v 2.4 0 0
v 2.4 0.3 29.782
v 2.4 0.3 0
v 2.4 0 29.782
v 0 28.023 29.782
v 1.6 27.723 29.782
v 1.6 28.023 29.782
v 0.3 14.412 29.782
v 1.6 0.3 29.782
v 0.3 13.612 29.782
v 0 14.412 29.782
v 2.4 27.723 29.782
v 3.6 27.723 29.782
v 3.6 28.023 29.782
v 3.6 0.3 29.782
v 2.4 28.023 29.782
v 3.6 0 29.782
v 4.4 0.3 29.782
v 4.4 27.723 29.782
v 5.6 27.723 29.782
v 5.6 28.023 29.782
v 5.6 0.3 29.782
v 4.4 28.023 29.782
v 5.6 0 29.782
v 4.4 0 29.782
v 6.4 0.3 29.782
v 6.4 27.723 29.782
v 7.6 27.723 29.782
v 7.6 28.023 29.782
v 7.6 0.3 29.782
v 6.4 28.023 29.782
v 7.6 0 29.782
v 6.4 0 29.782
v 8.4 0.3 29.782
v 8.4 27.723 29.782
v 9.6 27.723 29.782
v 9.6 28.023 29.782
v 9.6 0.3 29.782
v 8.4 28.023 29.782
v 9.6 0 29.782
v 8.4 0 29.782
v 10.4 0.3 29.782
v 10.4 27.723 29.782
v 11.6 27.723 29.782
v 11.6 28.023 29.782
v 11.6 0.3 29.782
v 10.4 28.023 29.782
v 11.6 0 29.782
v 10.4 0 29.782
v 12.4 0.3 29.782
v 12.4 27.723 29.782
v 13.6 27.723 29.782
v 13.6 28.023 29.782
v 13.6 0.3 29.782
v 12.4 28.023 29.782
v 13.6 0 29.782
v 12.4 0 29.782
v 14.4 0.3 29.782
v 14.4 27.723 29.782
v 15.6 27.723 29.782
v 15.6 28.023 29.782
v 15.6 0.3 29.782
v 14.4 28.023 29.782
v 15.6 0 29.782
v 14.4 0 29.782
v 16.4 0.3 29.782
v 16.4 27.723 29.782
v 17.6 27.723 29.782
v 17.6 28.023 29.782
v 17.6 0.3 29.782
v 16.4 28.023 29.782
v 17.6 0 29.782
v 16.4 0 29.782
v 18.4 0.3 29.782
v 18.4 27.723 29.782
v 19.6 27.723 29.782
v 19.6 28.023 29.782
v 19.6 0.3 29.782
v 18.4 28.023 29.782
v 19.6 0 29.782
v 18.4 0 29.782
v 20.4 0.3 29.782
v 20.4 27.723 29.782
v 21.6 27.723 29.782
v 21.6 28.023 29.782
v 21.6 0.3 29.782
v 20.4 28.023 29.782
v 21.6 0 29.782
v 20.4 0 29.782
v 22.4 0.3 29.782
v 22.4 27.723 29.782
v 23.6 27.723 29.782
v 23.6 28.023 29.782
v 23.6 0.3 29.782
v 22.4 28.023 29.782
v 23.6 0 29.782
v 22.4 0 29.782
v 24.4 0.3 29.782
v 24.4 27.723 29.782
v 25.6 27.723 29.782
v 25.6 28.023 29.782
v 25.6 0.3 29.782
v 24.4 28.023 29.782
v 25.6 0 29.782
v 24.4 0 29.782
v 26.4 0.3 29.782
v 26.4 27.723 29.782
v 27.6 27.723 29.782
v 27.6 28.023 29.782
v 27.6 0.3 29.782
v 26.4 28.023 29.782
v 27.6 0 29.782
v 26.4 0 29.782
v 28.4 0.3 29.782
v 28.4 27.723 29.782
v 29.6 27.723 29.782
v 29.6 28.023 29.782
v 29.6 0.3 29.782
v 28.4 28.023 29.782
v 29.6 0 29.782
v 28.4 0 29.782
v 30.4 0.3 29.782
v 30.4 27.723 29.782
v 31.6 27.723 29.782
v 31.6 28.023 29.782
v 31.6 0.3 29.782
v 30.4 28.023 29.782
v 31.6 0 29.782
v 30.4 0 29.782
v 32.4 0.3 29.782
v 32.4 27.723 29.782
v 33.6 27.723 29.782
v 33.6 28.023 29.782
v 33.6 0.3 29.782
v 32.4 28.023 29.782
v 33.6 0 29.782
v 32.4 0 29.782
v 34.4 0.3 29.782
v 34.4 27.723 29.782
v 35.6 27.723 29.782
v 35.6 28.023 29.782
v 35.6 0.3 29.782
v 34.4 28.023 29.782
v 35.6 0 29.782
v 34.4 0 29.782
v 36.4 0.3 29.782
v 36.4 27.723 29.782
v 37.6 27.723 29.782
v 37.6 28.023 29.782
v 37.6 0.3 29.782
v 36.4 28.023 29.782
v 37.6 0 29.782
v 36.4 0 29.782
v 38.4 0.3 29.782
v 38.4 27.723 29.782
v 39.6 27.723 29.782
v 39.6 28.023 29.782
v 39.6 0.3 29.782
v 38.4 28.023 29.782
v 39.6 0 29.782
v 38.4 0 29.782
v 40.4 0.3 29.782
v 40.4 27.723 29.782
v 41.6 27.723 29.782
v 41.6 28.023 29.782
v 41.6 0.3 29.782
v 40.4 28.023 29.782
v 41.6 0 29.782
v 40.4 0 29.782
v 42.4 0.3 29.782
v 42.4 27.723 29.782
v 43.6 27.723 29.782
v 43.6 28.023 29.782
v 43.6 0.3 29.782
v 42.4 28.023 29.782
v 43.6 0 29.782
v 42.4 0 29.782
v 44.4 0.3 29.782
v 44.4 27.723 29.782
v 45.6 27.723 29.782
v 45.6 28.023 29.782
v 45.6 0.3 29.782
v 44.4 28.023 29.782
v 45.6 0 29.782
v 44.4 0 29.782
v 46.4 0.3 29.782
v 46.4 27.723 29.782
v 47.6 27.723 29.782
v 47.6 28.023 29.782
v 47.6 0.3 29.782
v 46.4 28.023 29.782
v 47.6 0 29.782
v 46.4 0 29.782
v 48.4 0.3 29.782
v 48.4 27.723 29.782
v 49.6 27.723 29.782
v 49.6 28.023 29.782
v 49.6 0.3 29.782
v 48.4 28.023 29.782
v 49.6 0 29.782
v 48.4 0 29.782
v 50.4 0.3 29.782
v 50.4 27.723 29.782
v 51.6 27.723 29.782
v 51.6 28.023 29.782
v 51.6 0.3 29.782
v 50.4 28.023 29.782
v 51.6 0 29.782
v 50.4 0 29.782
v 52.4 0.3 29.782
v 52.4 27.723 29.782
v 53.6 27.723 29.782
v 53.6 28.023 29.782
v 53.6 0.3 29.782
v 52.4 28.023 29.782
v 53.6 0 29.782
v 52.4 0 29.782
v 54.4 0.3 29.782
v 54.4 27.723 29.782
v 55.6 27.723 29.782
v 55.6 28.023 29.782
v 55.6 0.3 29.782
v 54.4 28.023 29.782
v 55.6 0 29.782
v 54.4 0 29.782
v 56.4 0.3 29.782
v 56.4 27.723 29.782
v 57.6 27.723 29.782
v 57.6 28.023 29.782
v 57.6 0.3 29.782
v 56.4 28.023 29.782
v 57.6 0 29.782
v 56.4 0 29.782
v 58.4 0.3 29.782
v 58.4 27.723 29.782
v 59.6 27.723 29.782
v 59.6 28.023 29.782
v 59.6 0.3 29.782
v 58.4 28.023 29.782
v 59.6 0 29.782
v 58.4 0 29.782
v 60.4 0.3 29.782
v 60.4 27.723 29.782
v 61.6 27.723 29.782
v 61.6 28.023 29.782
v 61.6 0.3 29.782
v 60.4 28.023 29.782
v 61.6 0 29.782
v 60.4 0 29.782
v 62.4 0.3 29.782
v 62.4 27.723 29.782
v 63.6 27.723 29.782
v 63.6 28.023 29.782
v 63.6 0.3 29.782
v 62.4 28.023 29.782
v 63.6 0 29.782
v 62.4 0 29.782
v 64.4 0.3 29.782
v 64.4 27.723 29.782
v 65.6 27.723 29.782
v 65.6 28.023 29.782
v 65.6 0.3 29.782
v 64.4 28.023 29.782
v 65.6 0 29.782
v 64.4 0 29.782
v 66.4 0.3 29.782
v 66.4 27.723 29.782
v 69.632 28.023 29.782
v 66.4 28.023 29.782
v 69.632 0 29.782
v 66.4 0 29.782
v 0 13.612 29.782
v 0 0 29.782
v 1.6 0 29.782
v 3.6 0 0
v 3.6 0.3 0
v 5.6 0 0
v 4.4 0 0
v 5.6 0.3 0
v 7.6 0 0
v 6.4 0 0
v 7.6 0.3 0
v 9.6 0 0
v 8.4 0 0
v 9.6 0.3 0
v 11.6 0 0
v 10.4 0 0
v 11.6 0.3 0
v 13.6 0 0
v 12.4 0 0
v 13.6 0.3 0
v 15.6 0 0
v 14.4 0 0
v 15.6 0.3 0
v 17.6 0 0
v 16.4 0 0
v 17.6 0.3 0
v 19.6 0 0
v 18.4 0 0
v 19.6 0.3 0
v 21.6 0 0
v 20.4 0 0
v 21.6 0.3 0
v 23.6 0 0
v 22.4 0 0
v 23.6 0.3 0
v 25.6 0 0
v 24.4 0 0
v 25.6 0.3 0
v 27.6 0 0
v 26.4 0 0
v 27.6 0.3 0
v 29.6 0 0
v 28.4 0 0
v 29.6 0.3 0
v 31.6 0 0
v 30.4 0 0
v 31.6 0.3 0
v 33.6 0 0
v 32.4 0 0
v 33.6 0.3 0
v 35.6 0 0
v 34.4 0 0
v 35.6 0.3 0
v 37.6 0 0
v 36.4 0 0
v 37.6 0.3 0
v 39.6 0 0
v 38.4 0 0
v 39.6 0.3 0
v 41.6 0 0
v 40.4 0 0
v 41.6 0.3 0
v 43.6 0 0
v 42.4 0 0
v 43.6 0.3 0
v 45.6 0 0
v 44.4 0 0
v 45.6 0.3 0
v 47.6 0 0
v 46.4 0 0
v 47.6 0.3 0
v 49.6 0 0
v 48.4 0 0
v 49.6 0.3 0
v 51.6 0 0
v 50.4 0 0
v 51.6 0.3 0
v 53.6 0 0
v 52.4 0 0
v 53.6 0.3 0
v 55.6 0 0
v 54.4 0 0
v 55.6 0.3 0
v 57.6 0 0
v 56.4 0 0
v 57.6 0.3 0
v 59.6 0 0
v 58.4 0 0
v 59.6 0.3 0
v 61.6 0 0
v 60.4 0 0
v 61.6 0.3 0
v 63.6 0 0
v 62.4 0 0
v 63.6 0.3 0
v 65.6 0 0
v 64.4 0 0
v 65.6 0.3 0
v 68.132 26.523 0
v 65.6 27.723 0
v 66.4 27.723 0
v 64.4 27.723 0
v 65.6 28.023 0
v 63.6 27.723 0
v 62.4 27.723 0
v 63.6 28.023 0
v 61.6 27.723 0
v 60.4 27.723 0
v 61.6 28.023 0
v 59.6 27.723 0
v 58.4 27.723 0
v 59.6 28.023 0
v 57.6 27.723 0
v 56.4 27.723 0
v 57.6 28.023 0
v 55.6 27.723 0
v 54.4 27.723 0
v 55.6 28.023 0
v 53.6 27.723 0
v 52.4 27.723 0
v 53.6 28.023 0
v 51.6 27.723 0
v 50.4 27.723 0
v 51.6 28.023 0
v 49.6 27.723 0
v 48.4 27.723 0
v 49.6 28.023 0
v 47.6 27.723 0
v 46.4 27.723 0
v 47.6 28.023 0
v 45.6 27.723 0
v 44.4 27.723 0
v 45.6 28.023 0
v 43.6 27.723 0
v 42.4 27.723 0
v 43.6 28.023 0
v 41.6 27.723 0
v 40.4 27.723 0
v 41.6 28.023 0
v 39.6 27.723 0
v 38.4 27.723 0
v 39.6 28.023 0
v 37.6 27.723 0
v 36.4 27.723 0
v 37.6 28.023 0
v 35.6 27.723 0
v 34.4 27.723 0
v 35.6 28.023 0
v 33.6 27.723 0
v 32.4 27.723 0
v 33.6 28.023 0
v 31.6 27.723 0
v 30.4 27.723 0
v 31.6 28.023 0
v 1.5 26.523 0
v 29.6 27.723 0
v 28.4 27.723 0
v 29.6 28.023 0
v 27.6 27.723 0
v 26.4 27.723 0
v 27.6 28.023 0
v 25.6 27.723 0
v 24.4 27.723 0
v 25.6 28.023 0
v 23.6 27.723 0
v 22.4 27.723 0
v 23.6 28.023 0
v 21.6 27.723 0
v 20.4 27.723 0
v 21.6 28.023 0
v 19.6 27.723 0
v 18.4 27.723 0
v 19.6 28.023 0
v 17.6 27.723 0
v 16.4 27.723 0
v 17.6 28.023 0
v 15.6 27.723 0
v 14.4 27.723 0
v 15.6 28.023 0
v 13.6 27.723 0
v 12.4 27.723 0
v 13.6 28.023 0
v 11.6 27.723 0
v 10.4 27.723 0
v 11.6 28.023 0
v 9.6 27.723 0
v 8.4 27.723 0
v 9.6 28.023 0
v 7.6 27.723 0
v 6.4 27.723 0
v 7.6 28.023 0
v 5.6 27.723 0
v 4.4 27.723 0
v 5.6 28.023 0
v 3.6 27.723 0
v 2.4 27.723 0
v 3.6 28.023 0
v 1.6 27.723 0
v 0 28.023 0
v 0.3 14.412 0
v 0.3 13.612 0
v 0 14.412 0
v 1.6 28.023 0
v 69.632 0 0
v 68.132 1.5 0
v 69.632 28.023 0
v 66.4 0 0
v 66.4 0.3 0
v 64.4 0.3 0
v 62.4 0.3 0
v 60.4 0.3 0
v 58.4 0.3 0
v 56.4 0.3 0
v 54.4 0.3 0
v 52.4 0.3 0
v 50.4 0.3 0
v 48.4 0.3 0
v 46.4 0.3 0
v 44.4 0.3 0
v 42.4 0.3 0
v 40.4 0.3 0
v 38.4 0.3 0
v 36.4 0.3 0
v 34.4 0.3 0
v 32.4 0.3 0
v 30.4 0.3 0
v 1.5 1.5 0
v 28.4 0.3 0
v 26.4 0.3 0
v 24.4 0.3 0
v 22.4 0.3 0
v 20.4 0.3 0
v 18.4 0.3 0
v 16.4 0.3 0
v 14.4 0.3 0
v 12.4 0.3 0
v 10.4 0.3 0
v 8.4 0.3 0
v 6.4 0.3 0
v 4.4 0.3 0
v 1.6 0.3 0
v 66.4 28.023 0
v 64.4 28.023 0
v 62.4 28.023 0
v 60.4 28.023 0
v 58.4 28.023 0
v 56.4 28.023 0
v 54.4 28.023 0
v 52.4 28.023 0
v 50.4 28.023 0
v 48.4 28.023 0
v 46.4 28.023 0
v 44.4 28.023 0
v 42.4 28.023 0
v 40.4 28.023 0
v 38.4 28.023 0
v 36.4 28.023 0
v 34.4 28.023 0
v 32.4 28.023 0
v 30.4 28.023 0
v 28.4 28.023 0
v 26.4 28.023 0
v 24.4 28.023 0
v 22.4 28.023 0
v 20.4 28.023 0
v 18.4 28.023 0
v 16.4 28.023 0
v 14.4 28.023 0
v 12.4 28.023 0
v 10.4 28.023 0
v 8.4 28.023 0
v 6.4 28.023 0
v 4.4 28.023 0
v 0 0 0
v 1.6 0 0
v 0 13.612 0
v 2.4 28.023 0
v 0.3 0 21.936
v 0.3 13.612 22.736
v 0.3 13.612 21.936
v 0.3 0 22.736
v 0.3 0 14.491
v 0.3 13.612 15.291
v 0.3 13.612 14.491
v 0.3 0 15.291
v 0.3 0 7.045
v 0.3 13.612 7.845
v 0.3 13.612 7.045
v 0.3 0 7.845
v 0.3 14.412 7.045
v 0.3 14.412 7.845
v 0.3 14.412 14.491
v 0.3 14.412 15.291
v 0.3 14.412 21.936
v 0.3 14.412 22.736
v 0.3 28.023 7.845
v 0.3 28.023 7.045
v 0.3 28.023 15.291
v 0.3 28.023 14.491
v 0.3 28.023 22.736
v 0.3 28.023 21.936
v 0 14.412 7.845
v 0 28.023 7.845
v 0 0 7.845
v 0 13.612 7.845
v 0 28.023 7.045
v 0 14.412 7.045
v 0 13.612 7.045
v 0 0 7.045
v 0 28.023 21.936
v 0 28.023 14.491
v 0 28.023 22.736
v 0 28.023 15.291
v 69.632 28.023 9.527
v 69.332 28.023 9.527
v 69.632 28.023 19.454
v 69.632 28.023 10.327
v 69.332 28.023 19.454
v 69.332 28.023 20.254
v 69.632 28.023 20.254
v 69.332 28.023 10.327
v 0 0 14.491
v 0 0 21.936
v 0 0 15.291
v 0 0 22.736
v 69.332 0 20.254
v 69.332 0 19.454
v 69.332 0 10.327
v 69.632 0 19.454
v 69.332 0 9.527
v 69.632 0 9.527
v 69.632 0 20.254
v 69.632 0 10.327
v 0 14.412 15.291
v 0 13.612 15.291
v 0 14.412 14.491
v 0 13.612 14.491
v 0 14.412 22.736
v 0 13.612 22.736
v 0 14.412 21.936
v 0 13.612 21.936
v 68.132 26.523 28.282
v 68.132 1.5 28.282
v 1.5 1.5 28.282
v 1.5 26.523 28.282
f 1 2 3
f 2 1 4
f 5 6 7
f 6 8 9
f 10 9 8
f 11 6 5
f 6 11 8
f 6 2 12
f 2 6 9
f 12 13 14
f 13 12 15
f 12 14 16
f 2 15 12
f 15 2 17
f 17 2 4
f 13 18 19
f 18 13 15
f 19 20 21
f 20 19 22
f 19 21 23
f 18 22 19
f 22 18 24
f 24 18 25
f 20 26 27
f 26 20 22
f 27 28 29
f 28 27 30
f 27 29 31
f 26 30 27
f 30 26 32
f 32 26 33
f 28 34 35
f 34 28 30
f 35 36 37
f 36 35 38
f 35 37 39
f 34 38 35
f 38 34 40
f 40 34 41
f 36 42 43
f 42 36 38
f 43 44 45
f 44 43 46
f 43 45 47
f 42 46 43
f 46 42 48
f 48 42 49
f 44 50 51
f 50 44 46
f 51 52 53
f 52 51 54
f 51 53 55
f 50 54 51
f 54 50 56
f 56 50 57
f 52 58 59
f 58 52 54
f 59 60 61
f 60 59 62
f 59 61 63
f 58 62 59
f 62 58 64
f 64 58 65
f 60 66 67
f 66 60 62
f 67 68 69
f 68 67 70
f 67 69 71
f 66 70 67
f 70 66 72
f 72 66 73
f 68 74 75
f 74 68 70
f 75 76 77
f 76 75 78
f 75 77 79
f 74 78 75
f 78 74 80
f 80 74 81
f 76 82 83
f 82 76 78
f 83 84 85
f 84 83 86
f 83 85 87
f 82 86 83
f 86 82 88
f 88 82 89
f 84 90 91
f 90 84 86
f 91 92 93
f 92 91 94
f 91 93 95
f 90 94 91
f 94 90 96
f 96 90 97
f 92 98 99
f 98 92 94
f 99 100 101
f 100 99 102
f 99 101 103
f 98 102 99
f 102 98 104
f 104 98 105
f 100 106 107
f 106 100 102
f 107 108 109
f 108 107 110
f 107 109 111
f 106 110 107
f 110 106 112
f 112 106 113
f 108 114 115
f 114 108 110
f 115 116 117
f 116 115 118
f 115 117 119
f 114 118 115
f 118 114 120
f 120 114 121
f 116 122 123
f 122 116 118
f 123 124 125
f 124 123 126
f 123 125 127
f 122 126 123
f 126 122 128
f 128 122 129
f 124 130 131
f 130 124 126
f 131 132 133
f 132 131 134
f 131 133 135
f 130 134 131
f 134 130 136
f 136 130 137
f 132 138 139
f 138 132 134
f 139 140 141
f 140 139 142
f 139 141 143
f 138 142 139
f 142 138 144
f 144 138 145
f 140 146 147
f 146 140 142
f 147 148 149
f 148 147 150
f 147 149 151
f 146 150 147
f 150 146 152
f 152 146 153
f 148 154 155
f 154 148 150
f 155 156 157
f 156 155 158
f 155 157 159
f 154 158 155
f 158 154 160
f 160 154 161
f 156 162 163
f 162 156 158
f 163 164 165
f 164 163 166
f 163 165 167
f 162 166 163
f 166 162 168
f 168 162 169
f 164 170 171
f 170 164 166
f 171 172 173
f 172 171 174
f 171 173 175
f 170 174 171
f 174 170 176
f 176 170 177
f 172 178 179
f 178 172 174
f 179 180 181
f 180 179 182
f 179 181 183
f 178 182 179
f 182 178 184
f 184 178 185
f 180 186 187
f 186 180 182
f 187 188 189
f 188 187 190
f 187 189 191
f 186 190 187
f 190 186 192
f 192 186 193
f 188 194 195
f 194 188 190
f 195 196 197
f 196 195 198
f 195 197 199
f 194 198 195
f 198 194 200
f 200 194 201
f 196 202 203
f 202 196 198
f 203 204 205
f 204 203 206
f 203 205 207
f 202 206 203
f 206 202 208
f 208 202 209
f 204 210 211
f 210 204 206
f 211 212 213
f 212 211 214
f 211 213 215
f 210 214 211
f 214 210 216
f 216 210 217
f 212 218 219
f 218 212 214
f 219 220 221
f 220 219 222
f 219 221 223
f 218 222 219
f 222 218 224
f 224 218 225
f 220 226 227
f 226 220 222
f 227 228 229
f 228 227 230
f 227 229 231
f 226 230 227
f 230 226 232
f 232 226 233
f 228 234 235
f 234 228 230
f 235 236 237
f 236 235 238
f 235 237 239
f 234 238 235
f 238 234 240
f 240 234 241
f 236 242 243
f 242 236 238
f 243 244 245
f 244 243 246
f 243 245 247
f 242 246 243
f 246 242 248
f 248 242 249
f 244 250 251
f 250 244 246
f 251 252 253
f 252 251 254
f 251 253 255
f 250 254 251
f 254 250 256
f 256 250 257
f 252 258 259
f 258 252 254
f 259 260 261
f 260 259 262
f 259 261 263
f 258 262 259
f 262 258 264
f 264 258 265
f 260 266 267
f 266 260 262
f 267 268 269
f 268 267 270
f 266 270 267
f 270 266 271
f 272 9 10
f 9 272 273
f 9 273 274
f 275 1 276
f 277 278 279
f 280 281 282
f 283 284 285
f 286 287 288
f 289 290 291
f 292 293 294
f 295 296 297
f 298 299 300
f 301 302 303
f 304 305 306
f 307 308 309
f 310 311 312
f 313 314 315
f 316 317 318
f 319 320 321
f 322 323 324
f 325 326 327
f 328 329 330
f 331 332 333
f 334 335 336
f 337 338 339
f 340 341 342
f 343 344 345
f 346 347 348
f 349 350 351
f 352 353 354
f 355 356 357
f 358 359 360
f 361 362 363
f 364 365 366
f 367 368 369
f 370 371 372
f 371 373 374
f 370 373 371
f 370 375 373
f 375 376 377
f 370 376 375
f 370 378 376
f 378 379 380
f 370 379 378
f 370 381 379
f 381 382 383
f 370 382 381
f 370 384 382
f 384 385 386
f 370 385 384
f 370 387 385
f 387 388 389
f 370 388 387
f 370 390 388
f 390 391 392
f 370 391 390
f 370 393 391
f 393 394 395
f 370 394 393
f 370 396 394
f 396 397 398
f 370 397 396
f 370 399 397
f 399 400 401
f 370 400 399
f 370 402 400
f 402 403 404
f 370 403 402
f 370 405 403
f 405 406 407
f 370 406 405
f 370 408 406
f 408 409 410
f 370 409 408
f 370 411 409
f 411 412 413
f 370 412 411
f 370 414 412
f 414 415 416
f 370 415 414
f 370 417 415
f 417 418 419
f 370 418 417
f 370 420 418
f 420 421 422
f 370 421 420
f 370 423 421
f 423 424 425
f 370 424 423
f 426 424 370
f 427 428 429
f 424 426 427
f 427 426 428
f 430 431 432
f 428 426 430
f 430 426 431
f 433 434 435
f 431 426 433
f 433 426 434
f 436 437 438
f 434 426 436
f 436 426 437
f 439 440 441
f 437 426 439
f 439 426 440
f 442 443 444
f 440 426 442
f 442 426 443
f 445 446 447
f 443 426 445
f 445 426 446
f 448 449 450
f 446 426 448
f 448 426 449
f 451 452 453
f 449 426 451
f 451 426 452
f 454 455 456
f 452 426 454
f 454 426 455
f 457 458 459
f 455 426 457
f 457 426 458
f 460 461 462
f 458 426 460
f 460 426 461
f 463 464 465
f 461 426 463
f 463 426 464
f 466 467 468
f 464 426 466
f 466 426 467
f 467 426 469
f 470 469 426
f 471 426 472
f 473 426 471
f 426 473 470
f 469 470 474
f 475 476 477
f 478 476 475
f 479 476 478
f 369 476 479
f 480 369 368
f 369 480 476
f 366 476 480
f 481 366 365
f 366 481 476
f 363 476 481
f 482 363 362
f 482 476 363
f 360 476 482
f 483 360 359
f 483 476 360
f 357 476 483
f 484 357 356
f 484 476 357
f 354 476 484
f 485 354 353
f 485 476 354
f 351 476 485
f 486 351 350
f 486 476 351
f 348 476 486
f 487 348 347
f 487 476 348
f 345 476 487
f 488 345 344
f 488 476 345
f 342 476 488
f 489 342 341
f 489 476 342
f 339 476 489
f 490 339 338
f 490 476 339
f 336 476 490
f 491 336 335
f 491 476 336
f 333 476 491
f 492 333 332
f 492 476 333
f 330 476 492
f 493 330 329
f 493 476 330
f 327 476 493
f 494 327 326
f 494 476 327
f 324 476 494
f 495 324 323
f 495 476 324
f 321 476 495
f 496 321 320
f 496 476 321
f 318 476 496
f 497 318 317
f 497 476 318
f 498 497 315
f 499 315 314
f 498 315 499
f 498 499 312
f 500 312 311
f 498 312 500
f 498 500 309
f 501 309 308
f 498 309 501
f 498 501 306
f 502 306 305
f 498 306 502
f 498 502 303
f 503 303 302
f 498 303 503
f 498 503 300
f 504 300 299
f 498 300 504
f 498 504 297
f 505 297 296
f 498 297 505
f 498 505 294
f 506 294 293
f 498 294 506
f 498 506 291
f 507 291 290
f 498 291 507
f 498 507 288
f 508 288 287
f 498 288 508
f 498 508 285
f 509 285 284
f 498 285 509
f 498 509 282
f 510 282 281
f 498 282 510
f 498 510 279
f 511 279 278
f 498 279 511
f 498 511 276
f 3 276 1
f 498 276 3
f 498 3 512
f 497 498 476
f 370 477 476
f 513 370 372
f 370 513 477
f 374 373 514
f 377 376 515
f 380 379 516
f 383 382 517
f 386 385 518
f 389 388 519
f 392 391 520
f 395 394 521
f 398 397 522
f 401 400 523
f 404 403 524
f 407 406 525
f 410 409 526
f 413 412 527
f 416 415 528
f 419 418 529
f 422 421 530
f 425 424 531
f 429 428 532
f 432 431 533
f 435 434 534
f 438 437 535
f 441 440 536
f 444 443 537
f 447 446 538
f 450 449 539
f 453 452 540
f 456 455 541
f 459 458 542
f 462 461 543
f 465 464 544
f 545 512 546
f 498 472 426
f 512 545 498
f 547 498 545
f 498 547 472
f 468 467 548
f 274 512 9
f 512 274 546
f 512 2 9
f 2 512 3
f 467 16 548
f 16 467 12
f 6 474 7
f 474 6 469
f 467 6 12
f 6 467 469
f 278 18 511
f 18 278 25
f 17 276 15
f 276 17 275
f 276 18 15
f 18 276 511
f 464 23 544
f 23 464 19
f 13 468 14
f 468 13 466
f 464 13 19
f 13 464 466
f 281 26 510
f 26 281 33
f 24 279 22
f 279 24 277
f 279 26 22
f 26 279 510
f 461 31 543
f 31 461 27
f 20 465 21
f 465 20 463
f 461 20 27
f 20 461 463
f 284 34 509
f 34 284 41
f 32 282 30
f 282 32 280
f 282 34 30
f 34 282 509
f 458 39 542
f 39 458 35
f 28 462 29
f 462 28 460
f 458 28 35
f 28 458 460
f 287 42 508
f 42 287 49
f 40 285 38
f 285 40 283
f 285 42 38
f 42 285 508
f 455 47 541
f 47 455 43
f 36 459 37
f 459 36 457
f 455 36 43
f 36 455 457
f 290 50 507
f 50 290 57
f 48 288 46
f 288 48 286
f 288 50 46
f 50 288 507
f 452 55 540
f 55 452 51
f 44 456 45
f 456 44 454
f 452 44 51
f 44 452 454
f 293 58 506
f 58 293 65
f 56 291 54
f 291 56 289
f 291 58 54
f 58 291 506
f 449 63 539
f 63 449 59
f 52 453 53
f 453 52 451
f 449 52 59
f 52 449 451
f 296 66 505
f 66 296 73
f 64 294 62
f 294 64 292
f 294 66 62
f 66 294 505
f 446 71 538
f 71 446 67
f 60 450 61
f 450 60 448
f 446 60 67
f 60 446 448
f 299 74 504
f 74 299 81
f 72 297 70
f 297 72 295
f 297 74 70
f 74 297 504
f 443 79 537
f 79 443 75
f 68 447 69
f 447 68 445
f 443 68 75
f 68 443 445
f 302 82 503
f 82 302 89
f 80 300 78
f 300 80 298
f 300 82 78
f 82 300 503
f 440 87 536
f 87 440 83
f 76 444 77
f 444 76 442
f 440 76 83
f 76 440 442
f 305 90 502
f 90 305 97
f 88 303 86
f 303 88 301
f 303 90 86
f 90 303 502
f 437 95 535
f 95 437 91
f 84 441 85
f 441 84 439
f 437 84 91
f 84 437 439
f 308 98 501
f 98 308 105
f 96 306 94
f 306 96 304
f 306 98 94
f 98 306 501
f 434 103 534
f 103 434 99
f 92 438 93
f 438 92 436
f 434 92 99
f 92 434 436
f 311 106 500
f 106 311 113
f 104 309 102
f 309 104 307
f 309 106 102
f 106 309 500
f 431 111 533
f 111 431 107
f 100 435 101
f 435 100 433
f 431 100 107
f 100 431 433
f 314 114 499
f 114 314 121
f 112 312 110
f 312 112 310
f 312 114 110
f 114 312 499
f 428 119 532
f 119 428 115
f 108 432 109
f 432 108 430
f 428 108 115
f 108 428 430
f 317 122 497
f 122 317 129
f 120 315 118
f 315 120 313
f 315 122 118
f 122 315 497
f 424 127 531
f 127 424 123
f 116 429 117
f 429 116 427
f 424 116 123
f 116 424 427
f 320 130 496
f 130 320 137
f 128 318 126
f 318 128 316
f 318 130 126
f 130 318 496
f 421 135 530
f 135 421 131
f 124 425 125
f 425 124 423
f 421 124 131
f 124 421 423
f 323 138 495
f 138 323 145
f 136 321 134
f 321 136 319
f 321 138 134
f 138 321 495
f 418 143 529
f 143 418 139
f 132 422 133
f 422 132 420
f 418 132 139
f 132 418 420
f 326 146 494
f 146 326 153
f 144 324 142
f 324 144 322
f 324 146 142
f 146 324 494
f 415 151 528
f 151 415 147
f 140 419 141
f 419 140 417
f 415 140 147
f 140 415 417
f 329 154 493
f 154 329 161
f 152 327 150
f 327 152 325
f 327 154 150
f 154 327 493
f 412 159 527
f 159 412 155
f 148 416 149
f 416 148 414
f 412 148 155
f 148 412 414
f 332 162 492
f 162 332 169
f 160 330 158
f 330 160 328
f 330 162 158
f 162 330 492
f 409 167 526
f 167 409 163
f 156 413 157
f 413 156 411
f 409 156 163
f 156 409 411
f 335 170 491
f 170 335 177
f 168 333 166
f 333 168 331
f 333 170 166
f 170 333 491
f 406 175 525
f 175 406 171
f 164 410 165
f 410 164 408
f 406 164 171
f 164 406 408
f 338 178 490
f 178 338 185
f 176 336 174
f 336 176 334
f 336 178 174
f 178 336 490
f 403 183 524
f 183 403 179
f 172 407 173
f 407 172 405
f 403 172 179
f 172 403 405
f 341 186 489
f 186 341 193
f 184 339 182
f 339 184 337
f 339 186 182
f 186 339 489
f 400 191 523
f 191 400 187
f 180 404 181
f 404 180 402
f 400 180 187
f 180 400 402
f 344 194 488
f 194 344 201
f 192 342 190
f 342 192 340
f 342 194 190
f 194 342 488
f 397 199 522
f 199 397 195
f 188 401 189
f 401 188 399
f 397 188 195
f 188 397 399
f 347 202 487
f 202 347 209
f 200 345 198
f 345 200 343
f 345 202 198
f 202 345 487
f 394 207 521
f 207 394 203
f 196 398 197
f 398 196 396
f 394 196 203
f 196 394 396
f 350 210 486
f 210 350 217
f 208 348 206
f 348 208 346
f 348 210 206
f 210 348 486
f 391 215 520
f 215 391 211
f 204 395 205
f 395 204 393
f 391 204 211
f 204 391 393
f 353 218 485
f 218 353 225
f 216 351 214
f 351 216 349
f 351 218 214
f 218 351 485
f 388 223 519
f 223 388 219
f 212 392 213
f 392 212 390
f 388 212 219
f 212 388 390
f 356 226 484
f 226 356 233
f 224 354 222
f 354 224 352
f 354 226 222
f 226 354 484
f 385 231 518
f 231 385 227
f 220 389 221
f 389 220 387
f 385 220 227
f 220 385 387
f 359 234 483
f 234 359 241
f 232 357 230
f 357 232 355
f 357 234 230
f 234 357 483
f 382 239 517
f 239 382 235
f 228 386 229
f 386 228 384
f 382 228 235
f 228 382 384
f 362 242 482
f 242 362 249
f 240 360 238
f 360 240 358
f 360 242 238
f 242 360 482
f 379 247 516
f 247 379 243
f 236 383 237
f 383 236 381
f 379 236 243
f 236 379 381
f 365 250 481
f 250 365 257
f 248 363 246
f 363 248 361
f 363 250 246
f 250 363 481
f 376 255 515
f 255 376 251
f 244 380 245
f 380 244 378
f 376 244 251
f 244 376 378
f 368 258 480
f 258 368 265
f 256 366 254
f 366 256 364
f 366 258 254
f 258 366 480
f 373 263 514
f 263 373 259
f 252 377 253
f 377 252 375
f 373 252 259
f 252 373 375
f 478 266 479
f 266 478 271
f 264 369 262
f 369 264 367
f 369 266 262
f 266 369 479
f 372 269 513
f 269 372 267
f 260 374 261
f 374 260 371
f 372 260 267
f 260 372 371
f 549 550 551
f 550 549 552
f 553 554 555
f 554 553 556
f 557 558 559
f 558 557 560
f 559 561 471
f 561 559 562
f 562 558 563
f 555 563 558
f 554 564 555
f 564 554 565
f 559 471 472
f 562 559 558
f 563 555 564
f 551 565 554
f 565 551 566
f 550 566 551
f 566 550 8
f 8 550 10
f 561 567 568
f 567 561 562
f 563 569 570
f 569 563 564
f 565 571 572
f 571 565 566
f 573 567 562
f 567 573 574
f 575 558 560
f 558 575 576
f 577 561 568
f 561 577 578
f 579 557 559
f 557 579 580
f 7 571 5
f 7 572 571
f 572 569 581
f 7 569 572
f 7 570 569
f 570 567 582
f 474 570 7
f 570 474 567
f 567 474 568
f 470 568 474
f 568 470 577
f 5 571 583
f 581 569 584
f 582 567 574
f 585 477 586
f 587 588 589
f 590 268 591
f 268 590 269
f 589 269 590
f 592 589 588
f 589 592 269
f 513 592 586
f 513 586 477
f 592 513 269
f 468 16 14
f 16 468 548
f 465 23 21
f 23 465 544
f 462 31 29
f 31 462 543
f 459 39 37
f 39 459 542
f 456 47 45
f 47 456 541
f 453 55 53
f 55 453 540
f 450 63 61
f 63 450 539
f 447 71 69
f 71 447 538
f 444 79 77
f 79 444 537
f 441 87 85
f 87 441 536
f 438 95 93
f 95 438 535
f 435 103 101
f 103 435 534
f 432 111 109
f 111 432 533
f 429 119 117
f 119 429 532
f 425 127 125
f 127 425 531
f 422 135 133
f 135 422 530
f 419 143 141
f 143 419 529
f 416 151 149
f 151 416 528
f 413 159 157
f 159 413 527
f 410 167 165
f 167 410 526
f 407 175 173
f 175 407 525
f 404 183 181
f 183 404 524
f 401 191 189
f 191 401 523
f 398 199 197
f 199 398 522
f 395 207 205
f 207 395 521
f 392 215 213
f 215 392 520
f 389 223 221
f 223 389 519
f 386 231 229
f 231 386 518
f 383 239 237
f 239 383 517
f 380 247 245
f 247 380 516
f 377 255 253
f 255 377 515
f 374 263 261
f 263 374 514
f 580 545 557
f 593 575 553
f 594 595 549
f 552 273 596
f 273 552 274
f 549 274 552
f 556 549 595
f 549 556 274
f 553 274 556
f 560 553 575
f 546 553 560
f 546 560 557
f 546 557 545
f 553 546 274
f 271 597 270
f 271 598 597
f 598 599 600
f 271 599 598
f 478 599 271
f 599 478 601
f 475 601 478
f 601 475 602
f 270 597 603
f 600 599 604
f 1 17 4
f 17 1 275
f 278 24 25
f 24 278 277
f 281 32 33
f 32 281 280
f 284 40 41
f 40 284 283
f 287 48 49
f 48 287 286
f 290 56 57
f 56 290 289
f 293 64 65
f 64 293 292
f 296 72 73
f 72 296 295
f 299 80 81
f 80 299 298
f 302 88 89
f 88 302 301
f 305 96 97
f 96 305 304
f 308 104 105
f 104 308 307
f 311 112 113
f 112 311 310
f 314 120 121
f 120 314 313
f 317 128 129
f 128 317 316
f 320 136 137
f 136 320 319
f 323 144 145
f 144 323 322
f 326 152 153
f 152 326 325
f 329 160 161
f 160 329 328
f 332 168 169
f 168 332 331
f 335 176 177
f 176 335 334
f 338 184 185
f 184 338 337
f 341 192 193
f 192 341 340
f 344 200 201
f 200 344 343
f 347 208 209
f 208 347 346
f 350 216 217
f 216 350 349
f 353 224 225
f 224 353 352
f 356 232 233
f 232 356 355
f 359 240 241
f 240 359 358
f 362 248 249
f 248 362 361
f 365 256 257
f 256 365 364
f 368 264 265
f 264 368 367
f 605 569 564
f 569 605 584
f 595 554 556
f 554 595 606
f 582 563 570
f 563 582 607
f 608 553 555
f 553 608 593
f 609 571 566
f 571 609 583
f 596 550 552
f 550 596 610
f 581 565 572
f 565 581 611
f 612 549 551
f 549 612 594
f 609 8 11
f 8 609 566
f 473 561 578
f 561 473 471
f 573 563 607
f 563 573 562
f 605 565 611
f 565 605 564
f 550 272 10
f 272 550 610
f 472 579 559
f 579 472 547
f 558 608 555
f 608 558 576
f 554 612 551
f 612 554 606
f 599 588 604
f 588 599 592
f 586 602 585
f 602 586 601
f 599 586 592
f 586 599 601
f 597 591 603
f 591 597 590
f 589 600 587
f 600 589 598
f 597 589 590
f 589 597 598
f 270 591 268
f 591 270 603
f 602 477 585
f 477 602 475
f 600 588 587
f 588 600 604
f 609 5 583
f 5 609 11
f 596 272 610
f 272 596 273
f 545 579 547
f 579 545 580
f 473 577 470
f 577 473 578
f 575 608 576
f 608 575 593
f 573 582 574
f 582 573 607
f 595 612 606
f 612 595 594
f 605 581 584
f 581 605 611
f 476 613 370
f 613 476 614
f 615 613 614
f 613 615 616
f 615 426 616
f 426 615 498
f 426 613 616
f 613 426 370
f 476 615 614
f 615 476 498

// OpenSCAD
/*
 * PROMPT: ISO dry-cargo shipping container in H0 scale (1:87). Parametric length:
 * 6 m (≈ 20 ft) or 12 m (≈ 40 ft). Vertical corrugation grooves on both long side
 * walls, three horizontal panel rail grooves on door end with vertical centre groove
 * between the two door leaves, two horizontal rail grooves on sealed nose end.
 * Open bottom hollow shell, closed roof.
 */

$fn = 32;
S = 1 / 87;

// ── PARAMETER ─────────────────────────────────────────────────────────────────
container_m = 6;   // container length in metres: 6 (≈ 20 ft) or 12 (≈ 40 ft)

// ── DIMENSIONS (real-world mm → H0 mm) ────────────────────────────────────────
wall_t      = 1.5;            // shell thickness, fixed for printability

// ISO external dimensions — width and height identical for both lengths
ctnr_l      = (container_m == 6 ? 6058 : 12192) * S;  // 69.6 mm or 140.1 mm
ctnr_w      = 2438 * S;       //  28.0 mm
ctnr_h      = 2591 * S;       //  29.8 mm

// vertical corrugations on long sides (grooves in Z, spaced along X)
corr_period = 2.0;            // groove pitch (H0 mm)
corr_w      = 0.8;            // groove width  (minimum feature size)
corr_d      = 0.3;            // groove depth  (wall_t − corr_d ≥ 1.2 mm minimum)

// end wall panel rails (horizontal grooves in Y, spaced in Z)
door_rails  = 3;              // grooves on door end
nose_rails  = 2;              // grooves on sealed nose end
rail_w      = 0.8;
rail_d      = 0.3;            // same constraint as corr_d

door_gap_w  = 0.8;            // width of vertical centre groove on door end

// ── MODULES ───────────────────────────────────────────────────────────────────

module side_corrugations() {
    // vertical grooves running full height, spaced along container length
    n = floor(ctnr_l / corr_period) - 1;
    for (i = [1 : n]) {
        x = i * corr_period;
        translate([x - corr_w/2, -1, 0])
            cube([corr_w, corr_d + 1, ctnr_h]);         // front long side (y = 0)
        translate([x - corr_w/2, ctnr_w - corr_d, 0])
            cube([corr_w, corr_d + 1, ctnr_h]);         // back long side (y = ctnr_w)
    }
}

module door_end_cuts() {
    // horizontal rails, evenly spaced in Z
    for (i = [1 : door_rails]) {
        z = i * ctnr_h / (door_rails + 1) - rail_w/2;
        translate([-1, 0, z])
            cube([rail_d + 1, ctnr_w, rail_w]);
    }
    // vertical centre groove separating the two door leaves
    translate([-1, ctnr_w/2 - door_gap_w/2, 0])
        cube([rail_d + 1, door_gap_w, ctnr_h]);
}

module nose_end_cuts() {
    for (i = [1 : nose_rails]) {
        z = i * ctnr_h / (nose_rails + 1) - rail_w/2;
        translate([ctnr_l - rail_d, 0, z])
            cube([rail_d + 1, ctnr_w, rail_w]);
    }
}

// ── ASSEMBLY ──────────────────────────────────────────────────────────────────
difference() {
    cube([ctnr_l, ctnr_w, ctnr_h]);
    // hollow shell — open bottom, closed roof (wall_t thick)
    translate([wall_t, wall_t, 0])
        cube([ctnr_l - 2*wall_t, ctnr_w - 2*wall_t, ctnr_h - wall_t]);
    side_corrugations();
    door_end_cuts();
    nose_end_cuts();
}
